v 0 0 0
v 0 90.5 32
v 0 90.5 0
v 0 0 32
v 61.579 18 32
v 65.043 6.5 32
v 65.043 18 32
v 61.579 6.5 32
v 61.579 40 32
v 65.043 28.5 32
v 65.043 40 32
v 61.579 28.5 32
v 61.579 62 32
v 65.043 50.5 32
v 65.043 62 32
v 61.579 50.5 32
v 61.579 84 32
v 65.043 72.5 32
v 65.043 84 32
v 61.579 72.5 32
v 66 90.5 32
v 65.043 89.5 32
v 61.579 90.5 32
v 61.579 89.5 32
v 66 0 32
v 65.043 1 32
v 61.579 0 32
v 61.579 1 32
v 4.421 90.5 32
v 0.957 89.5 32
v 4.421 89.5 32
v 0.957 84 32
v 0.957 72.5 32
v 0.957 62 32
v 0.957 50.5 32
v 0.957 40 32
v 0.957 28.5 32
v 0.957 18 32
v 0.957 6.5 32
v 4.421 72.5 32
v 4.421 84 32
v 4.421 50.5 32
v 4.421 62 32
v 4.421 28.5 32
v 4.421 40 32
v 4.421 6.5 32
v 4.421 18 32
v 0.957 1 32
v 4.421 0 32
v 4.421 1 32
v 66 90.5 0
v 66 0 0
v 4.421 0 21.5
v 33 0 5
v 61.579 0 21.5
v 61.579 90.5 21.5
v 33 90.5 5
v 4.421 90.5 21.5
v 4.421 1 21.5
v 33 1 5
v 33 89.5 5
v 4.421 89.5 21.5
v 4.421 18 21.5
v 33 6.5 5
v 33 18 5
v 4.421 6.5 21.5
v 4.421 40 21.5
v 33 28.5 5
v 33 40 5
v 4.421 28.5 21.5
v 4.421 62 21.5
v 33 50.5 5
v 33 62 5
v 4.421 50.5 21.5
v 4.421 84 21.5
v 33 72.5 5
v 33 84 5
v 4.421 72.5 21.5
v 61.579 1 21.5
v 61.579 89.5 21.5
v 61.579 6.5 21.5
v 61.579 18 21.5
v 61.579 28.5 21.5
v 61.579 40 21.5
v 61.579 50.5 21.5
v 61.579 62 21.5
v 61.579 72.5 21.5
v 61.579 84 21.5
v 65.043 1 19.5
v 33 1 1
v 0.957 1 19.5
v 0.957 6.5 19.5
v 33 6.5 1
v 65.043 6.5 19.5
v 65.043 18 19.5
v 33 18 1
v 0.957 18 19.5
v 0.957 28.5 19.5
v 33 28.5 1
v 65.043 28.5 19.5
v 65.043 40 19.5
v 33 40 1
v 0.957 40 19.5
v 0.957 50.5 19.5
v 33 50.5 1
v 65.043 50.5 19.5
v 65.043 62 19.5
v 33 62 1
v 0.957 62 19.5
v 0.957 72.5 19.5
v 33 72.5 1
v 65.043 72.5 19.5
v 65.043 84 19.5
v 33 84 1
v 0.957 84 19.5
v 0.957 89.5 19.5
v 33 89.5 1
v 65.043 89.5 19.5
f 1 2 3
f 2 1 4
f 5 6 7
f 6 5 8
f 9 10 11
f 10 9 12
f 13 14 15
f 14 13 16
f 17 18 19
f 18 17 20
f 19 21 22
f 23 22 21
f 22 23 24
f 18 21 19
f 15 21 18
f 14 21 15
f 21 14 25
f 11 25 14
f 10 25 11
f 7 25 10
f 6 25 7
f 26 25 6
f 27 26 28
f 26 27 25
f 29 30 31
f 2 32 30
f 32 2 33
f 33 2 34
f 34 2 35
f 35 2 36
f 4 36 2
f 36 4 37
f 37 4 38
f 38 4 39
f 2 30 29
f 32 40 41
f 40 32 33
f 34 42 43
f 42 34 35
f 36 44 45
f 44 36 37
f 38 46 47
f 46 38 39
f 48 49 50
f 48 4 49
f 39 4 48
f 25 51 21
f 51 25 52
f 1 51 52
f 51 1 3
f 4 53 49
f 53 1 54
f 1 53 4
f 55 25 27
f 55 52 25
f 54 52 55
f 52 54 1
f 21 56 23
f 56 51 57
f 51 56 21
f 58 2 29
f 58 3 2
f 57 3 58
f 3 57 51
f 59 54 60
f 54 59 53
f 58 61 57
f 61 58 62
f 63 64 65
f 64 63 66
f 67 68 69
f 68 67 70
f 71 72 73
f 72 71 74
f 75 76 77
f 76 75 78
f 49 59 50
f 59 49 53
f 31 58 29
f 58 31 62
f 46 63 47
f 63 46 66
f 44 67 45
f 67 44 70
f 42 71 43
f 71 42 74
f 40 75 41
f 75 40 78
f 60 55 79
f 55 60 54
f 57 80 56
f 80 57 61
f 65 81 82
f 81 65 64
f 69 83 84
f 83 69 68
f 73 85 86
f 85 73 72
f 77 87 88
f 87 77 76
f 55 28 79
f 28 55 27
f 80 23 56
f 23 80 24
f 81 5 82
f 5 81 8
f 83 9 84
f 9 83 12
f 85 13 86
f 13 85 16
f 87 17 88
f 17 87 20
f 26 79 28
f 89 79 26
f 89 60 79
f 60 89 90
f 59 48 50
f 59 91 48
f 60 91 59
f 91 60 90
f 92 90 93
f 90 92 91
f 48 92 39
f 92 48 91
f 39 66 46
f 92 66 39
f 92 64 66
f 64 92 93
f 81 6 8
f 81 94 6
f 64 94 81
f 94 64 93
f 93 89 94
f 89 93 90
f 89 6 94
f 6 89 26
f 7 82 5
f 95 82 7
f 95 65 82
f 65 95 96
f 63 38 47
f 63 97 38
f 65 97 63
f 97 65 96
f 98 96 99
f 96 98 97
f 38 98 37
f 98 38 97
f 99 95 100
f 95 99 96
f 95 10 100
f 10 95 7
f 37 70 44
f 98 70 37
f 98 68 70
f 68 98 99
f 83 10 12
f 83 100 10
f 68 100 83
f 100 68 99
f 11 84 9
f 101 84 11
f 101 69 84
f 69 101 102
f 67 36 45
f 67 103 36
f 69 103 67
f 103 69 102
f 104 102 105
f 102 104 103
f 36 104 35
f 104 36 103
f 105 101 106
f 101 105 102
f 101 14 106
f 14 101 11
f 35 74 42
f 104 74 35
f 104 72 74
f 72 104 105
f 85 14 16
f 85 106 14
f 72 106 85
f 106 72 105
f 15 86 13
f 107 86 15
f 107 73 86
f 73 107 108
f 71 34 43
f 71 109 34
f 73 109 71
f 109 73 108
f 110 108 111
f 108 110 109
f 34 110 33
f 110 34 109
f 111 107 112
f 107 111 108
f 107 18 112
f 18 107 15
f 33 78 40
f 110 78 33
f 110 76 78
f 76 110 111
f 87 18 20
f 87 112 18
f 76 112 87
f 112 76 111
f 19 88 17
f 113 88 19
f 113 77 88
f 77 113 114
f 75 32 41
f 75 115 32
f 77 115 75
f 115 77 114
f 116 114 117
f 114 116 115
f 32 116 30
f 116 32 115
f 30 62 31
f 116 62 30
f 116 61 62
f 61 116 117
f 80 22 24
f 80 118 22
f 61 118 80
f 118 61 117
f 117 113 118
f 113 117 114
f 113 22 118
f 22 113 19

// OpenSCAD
$fn=200;
THICK = 1;

TILE_L = 17;
TILE_COUNT = 6;

BOX_W = 64;
BOX_L = 88.5;
BOX_H = 32;

difference() {
    cube(size = [
        BOX_W + (THICK * 2),
        BOX_L + (THICK * 2), 
        BOX_H]);

    translate([33, -5, 38])
        rotate([0, 90, 90]) 
            cylinder(h = 200, r = 33, $fn=6);

    tile_slot(1);
    tile_slot(1 + TILE_L);

    tile_slot(6 + TILE_L);
    tile_slot(6 + (TILE_L * 2));

    tile_slot(11 + (TILE_L * 2));
    tile_slot(11 + (TILE_L * 3));

    tile_slot(16 + (TILE_L * 3));
    tile_slot(16 + (TILE_L * 4));
}

module tile_slot(y) {
    translate([33, y, 38])
        rotate([0, 90, 90]) 
            cylinder(h = 5.5, r = 37, $fn=6);
}
